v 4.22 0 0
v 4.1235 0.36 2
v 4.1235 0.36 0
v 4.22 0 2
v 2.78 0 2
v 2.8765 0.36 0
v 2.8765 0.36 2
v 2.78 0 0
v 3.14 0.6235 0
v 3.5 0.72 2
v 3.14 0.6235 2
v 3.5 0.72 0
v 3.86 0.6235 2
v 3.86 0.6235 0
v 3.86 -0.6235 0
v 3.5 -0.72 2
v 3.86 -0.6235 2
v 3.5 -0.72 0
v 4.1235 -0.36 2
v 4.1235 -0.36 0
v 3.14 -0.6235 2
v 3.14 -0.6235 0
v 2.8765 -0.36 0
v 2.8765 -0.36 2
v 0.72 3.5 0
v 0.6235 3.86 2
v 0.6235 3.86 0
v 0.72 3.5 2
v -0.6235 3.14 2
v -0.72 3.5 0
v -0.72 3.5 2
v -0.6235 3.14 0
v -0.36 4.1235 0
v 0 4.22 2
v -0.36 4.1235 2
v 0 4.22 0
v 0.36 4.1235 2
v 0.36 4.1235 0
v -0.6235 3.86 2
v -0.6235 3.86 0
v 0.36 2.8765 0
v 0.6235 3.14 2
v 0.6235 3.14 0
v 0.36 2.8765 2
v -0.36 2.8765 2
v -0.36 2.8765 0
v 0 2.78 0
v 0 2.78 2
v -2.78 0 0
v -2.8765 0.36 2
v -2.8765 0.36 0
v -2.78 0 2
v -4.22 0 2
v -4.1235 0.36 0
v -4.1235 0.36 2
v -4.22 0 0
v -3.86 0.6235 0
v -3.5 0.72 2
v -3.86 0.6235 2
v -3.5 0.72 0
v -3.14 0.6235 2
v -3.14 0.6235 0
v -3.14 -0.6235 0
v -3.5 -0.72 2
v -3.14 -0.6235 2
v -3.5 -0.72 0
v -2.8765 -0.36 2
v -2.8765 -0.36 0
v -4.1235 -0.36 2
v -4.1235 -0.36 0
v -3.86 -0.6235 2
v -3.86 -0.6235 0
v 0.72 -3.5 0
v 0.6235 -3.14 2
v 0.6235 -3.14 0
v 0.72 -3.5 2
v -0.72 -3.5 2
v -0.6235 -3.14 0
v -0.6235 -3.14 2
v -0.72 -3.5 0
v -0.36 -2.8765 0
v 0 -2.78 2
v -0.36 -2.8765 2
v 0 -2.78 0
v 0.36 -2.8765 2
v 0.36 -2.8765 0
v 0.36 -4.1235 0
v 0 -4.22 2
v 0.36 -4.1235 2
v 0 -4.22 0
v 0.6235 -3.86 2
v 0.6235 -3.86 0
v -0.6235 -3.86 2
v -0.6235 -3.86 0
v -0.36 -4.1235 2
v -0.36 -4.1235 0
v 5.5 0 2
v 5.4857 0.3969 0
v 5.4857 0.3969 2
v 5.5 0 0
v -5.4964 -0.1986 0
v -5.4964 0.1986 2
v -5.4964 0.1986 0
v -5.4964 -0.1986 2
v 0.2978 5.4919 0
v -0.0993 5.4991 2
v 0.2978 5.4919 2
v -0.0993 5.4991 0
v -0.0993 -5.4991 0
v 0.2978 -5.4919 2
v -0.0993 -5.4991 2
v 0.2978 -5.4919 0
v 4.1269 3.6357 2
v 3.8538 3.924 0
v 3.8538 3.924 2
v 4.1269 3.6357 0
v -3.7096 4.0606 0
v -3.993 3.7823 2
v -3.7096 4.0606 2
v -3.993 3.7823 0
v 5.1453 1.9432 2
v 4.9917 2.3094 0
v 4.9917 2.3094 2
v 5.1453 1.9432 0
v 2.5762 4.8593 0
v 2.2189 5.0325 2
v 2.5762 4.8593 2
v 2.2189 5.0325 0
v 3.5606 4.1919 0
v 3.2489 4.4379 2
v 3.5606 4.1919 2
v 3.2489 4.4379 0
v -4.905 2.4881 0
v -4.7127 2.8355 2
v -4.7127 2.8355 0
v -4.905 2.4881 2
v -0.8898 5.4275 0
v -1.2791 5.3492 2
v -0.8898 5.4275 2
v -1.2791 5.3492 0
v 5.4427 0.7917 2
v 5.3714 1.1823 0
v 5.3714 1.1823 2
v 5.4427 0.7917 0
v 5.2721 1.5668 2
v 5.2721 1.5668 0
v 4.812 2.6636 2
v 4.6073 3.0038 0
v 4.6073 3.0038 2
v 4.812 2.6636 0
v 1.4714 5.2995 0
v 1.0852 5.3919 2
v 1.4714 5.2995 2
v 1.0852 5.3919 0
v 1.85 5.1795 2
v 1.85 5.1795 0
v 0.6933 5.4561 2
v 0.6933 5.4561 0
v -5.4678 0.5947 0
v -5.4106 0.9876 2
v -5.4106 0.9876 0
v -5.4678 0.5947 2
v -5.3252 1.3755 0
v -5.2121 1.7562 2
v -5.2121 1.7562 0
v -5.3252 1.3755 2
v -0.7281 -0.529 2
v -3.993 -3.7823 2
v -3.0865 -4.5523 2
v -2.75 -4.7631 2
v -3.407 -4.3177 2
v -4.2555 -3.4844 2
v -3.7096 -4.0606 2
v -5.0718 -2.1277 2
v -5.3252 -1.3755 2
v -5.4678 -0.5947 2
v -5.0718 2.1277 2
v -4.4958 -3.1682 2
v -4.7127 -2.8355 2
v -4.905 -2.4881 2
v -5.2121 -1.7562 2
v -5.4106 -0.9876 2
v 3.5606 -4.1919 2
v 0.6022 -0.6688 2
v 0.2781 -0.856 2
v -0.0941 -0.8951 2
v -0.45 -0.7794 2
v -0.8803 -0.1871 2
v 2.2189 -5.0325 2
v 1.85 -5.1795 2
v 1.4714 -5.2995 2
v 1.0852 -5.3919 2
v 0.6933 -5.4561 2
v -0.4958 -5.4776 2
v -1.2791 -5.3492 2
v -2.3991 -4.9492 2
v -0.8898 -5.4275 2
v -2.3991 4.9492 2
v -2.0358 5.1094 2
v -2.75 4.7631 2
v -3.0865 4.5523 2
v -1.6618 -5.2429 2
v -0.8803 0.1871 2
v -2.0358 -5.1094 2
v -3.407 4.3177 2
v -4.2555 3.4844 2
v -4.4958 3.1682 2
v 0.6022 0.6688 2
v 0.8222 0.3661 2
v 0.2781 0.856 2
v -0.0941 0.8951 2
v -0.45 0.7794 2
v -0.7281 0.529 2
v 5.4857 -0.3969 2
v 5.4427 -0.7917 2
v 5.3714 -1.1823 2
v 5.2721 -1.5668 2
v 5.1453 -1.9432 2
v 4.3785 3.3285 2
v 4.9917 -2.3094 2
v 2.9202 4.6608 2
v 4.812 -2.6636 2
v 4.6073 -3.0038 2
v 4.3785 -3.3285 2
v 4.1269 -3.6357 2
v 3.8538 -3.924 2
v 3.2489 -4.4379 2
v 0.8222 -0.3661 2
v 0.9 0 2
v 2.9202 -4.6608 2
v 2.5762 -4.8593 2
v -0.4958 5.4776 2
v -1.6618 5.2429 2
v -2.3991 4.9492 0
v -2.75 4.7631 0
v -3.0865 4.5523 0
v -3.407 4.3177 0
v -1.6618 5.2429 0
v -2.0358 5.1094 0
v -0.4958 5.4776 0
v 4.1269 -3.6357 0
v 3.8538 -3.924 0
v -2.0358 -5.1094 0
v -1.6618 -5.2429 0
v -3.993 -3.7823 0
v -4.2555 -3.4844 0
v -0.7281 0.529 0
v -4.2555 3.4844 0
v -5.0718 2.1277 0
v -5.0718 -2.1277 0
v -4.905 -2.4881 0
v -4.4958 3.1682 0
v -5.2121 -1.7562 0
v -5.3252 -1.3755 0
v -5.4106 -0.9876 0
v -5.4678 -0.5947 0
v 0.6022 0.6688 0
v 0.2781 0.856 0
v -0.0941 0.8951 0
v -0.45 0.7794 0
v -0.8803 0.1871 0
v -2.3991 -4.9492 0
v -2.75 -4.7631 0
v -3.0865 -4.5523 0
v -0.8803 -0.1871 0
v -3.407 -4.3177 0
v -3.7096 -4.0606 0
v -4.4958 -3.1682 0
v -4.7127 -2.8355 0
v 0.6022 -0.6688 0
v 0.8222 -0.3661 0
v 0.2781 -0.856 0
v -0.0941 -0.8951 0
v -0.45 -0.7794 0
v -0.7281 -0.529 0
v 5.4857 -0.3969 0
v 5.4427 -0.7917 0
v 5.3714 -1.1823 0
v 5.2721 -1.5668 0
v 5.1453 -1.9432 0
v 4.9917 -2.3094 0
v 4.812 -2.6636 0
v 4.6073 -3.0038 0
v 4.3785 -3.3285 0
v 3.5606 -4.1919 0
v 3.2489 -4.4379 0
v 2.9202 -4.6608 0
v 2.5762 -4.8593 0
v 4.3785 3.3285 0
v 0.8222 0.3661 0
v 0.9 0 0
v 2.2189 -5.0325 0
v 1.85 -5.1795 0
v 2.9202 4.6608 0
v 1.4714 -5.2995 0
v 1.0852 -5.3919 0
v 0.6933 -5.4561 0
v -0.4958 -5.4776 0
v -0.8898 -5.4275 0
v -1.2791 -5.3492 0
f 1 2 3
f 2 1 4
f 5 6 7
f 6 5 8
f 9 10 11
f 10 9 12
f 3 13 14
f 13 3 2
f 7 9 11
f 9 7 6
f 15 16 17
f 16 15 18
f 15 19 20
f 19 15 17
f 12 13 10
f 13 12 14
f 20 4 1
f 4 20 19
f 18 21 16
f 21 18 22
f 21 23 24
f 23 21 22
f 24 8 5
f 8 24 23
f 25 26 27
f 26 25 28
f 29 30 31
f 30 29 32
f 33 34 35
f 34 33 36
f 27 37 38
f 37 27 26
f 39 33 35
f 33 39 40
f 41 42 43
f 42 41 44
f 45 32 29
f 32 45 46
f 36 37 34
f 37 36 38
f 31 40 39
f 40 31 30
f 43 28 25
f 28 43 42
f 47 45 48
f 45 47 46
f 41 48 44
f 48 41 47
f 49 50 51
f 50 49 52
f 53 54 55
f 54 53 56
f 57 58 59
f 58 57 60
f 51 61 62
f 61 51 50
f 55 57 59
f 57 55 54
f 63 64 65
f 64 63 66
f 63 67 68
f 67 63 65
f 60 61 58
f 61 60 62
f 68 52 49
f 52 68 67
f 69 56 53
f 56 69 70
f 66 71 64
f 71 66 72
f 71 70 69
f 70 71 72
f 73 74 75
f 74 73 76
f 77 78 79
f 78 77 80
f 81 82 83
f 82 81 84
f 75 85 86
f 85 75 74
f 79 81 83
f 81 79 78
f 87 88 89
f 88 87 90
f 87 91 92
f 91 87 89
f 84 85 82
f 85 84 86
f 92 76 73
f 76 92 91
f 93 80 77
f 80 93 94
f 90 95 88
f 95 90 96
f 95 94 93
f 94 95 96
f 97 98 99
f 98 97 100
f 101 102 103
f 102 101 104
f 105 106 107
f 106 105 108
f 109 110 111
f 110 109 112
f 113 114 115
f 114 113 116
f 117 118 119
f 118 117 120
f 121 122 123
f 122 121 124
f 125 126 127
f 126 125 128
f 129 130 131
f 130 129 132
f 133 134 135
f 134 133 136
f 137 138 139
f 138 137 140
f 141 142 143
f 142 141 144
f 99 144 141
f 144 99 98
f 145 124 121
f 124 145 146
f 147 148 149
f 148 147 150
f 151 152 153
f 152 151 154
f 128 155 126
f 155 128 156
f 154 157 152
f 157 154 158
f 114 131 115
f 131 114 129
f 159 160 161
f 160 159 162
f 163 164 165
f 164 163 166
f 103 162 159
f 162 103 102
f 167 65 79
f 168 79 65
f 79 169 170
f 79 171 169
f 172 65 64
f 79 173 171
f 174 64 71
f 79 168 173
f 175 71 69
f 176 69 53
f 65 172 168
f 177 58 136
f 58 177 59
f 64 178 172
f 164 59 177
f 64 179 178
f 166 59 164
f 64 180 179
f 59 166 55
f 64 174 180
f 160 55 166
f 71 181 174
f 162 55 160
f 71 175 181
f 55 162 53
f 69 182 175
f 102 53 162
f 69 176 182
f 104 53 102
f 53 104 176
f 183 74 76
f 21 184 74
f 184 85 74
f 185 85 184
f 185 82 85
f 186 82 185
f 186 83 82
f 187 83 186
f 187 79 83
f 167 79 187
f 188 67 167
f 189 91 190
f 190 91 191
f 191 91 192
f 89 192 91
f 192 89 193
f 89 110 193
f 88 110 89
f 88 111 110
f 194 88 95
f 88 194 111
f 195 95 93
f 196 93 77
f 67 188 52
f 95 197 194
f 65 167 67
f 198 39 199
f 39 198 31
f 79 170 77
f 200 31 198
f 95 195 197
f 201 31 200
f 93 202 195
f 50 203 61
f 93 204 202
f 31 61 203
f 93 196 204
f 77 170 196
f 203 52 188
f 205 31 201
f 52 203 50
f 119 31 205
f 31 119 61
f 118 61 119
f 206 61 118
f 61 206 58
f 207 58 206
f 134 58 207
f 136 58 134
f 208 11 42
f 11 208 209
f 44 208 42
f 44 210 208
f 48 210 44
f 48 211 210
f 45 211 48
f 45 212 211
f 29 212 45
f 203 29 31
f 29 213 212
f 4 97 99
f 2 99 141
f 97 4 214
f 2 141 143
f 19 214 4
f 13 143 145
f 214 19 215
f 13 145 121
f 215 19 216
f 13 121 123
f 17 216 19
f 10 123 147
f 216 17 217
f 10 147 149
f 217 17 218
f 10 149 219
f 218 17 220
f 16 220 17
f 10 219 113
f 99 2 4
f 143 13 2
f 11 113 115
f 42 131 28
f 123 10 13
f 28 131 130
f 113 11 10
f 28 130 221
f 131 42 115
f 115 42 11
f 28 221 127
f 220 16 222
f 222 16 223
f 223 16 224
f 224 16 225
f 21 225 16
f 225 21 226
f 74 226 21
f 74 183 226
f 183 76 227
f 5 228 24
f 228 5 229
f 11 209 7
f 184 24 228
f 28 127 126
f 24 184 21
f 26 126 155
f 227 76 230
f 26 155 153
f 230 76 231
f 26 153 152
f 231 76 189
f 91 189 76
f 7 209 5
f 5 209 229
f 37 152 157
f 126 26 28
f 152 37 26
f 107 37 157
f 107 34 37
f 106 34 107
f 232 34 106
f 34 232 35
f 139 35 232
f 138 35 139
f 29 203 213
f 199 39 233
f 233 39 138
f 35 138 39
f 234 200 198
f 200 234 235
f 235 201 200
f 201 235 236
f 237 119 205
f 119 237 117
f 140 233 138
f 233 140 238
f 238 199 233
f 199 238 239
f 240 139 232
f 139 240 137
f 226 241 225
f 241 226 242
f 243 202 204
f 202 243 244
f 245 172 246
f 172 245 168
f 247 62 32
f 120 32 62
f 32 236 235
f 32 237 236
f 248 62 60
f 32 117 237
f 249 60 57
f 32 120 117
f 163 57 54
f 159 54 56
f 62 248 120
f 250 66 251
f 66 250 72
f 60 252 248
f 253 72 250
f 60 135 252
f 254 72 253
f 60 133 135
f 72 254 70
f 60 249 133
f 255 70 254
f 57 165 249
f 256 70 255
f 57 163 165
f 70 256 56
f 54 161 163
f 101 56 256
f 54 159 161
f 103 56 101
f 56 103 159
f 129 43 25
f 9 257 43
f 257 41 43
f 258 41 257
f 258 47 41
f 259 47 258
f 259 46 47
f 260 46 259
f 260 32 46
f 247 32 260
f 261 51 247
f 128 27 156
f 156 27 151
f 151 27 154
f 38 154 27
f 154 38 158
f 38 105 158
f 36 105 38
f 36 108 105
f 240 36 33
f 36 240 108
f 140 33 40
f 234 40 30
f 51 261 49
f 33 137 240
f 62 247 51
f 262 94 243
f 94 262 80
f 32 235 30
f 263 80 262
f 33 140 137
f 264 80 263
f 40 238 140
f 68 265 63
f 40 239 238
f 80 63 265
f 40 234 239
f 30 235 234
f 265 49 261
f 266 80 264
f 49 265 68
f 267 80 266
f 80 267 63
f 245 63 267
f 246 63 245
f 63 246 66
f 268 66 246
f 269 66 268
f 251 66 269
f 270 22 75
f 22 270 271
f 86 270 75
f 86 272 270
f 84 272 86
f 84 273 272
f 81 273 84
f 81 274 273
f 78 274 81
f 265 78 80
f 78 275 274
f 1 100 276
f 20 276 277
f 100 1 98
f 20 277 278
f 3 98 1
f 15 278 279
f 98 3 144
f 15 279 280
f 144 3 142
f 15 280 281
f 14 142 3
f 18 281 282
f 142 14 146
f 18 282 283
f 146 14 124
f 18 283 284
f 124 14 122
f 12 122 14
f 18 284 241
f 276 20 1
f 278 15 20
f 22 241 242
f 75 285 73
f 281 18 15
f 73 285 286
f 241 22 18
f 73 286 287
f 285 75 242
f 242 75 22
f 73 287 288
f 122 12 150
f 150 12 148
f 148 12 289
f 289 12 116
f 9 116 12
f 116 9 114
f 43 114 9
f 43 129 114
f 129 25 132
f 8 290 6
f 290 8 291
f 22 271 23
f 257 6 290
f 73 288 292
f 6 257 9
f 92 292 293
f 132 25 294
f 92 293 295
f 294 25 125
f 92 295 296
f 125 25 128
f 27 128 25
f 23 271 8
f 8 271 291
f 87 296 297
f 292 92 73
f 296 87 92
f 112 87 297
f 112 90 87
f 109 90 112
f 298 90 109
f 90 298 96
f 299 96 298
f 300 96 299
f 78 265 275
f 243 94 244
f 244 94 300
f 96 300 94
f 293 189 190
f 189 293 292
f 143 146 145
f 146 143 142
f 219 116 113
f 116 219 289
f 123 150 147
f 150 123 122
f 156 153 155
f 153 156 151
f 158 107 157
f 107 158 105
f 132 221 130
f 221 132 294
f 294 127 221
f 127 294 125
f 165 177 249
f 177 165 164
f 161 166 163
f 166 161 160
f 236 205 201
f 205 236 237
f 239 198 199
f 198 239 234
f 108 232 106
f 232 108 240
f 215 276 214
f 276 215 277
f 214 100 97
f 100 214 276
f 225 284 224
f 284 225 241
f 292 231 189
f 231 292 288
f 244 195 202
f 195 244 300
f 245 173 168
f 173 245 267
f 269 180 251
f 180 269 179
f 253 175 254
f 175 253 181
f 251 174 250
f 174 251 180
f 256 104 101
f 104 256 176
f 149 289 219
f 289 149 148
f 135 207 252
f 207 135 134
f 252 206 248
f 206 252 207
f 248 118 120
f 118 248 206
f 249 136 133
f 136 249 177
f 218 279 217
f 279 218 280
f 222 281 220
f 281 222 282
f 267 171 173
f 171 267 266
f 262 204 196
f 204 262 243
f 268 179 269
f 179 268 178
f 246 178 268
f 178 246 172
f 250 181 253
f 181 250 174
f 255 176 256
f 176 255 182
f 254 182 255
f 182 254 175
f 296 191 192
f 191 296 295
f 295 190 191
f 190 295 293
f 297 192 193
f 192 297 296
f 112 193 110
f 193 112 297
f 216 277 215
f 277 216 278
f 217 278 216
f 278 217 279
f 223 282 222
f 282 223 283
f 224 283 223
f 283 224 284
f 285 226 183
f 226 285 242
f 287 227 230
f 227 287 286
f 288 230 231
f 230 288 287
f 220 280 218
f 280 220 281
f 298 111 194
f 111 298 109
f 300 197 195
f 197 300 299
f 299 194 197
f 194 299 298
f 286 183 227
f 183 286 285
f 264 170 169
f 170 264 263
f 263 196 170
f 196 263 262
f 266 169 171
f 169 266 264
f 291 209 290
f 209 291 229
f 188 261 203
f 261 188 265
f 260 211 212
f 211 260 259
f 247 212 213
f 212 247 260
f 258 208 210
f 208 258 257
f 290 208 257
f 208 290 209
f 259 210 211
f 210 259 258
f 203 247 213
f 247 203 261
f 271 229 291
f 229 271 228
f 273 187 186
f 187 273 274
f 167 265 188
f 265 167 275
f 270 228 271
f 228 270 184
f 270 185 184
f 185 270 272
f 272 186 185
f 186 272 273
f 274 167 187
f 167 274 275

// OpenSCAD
$fa = 1;
$fs = 0.4;

difference() {
    cylinder(h = 2, r = 5.5);
    translate([0, 0, -0.001]) {
        cylinder(h=5 + 0.002, r=0.9);   
    }
  
    r = 3.5;
    for (i=[0:90:359]) {
        translate([r*cos(i),r*sin(i),-0.001])
            cylinder(h=5 + 0.002, r=0.72);   
    }
}
